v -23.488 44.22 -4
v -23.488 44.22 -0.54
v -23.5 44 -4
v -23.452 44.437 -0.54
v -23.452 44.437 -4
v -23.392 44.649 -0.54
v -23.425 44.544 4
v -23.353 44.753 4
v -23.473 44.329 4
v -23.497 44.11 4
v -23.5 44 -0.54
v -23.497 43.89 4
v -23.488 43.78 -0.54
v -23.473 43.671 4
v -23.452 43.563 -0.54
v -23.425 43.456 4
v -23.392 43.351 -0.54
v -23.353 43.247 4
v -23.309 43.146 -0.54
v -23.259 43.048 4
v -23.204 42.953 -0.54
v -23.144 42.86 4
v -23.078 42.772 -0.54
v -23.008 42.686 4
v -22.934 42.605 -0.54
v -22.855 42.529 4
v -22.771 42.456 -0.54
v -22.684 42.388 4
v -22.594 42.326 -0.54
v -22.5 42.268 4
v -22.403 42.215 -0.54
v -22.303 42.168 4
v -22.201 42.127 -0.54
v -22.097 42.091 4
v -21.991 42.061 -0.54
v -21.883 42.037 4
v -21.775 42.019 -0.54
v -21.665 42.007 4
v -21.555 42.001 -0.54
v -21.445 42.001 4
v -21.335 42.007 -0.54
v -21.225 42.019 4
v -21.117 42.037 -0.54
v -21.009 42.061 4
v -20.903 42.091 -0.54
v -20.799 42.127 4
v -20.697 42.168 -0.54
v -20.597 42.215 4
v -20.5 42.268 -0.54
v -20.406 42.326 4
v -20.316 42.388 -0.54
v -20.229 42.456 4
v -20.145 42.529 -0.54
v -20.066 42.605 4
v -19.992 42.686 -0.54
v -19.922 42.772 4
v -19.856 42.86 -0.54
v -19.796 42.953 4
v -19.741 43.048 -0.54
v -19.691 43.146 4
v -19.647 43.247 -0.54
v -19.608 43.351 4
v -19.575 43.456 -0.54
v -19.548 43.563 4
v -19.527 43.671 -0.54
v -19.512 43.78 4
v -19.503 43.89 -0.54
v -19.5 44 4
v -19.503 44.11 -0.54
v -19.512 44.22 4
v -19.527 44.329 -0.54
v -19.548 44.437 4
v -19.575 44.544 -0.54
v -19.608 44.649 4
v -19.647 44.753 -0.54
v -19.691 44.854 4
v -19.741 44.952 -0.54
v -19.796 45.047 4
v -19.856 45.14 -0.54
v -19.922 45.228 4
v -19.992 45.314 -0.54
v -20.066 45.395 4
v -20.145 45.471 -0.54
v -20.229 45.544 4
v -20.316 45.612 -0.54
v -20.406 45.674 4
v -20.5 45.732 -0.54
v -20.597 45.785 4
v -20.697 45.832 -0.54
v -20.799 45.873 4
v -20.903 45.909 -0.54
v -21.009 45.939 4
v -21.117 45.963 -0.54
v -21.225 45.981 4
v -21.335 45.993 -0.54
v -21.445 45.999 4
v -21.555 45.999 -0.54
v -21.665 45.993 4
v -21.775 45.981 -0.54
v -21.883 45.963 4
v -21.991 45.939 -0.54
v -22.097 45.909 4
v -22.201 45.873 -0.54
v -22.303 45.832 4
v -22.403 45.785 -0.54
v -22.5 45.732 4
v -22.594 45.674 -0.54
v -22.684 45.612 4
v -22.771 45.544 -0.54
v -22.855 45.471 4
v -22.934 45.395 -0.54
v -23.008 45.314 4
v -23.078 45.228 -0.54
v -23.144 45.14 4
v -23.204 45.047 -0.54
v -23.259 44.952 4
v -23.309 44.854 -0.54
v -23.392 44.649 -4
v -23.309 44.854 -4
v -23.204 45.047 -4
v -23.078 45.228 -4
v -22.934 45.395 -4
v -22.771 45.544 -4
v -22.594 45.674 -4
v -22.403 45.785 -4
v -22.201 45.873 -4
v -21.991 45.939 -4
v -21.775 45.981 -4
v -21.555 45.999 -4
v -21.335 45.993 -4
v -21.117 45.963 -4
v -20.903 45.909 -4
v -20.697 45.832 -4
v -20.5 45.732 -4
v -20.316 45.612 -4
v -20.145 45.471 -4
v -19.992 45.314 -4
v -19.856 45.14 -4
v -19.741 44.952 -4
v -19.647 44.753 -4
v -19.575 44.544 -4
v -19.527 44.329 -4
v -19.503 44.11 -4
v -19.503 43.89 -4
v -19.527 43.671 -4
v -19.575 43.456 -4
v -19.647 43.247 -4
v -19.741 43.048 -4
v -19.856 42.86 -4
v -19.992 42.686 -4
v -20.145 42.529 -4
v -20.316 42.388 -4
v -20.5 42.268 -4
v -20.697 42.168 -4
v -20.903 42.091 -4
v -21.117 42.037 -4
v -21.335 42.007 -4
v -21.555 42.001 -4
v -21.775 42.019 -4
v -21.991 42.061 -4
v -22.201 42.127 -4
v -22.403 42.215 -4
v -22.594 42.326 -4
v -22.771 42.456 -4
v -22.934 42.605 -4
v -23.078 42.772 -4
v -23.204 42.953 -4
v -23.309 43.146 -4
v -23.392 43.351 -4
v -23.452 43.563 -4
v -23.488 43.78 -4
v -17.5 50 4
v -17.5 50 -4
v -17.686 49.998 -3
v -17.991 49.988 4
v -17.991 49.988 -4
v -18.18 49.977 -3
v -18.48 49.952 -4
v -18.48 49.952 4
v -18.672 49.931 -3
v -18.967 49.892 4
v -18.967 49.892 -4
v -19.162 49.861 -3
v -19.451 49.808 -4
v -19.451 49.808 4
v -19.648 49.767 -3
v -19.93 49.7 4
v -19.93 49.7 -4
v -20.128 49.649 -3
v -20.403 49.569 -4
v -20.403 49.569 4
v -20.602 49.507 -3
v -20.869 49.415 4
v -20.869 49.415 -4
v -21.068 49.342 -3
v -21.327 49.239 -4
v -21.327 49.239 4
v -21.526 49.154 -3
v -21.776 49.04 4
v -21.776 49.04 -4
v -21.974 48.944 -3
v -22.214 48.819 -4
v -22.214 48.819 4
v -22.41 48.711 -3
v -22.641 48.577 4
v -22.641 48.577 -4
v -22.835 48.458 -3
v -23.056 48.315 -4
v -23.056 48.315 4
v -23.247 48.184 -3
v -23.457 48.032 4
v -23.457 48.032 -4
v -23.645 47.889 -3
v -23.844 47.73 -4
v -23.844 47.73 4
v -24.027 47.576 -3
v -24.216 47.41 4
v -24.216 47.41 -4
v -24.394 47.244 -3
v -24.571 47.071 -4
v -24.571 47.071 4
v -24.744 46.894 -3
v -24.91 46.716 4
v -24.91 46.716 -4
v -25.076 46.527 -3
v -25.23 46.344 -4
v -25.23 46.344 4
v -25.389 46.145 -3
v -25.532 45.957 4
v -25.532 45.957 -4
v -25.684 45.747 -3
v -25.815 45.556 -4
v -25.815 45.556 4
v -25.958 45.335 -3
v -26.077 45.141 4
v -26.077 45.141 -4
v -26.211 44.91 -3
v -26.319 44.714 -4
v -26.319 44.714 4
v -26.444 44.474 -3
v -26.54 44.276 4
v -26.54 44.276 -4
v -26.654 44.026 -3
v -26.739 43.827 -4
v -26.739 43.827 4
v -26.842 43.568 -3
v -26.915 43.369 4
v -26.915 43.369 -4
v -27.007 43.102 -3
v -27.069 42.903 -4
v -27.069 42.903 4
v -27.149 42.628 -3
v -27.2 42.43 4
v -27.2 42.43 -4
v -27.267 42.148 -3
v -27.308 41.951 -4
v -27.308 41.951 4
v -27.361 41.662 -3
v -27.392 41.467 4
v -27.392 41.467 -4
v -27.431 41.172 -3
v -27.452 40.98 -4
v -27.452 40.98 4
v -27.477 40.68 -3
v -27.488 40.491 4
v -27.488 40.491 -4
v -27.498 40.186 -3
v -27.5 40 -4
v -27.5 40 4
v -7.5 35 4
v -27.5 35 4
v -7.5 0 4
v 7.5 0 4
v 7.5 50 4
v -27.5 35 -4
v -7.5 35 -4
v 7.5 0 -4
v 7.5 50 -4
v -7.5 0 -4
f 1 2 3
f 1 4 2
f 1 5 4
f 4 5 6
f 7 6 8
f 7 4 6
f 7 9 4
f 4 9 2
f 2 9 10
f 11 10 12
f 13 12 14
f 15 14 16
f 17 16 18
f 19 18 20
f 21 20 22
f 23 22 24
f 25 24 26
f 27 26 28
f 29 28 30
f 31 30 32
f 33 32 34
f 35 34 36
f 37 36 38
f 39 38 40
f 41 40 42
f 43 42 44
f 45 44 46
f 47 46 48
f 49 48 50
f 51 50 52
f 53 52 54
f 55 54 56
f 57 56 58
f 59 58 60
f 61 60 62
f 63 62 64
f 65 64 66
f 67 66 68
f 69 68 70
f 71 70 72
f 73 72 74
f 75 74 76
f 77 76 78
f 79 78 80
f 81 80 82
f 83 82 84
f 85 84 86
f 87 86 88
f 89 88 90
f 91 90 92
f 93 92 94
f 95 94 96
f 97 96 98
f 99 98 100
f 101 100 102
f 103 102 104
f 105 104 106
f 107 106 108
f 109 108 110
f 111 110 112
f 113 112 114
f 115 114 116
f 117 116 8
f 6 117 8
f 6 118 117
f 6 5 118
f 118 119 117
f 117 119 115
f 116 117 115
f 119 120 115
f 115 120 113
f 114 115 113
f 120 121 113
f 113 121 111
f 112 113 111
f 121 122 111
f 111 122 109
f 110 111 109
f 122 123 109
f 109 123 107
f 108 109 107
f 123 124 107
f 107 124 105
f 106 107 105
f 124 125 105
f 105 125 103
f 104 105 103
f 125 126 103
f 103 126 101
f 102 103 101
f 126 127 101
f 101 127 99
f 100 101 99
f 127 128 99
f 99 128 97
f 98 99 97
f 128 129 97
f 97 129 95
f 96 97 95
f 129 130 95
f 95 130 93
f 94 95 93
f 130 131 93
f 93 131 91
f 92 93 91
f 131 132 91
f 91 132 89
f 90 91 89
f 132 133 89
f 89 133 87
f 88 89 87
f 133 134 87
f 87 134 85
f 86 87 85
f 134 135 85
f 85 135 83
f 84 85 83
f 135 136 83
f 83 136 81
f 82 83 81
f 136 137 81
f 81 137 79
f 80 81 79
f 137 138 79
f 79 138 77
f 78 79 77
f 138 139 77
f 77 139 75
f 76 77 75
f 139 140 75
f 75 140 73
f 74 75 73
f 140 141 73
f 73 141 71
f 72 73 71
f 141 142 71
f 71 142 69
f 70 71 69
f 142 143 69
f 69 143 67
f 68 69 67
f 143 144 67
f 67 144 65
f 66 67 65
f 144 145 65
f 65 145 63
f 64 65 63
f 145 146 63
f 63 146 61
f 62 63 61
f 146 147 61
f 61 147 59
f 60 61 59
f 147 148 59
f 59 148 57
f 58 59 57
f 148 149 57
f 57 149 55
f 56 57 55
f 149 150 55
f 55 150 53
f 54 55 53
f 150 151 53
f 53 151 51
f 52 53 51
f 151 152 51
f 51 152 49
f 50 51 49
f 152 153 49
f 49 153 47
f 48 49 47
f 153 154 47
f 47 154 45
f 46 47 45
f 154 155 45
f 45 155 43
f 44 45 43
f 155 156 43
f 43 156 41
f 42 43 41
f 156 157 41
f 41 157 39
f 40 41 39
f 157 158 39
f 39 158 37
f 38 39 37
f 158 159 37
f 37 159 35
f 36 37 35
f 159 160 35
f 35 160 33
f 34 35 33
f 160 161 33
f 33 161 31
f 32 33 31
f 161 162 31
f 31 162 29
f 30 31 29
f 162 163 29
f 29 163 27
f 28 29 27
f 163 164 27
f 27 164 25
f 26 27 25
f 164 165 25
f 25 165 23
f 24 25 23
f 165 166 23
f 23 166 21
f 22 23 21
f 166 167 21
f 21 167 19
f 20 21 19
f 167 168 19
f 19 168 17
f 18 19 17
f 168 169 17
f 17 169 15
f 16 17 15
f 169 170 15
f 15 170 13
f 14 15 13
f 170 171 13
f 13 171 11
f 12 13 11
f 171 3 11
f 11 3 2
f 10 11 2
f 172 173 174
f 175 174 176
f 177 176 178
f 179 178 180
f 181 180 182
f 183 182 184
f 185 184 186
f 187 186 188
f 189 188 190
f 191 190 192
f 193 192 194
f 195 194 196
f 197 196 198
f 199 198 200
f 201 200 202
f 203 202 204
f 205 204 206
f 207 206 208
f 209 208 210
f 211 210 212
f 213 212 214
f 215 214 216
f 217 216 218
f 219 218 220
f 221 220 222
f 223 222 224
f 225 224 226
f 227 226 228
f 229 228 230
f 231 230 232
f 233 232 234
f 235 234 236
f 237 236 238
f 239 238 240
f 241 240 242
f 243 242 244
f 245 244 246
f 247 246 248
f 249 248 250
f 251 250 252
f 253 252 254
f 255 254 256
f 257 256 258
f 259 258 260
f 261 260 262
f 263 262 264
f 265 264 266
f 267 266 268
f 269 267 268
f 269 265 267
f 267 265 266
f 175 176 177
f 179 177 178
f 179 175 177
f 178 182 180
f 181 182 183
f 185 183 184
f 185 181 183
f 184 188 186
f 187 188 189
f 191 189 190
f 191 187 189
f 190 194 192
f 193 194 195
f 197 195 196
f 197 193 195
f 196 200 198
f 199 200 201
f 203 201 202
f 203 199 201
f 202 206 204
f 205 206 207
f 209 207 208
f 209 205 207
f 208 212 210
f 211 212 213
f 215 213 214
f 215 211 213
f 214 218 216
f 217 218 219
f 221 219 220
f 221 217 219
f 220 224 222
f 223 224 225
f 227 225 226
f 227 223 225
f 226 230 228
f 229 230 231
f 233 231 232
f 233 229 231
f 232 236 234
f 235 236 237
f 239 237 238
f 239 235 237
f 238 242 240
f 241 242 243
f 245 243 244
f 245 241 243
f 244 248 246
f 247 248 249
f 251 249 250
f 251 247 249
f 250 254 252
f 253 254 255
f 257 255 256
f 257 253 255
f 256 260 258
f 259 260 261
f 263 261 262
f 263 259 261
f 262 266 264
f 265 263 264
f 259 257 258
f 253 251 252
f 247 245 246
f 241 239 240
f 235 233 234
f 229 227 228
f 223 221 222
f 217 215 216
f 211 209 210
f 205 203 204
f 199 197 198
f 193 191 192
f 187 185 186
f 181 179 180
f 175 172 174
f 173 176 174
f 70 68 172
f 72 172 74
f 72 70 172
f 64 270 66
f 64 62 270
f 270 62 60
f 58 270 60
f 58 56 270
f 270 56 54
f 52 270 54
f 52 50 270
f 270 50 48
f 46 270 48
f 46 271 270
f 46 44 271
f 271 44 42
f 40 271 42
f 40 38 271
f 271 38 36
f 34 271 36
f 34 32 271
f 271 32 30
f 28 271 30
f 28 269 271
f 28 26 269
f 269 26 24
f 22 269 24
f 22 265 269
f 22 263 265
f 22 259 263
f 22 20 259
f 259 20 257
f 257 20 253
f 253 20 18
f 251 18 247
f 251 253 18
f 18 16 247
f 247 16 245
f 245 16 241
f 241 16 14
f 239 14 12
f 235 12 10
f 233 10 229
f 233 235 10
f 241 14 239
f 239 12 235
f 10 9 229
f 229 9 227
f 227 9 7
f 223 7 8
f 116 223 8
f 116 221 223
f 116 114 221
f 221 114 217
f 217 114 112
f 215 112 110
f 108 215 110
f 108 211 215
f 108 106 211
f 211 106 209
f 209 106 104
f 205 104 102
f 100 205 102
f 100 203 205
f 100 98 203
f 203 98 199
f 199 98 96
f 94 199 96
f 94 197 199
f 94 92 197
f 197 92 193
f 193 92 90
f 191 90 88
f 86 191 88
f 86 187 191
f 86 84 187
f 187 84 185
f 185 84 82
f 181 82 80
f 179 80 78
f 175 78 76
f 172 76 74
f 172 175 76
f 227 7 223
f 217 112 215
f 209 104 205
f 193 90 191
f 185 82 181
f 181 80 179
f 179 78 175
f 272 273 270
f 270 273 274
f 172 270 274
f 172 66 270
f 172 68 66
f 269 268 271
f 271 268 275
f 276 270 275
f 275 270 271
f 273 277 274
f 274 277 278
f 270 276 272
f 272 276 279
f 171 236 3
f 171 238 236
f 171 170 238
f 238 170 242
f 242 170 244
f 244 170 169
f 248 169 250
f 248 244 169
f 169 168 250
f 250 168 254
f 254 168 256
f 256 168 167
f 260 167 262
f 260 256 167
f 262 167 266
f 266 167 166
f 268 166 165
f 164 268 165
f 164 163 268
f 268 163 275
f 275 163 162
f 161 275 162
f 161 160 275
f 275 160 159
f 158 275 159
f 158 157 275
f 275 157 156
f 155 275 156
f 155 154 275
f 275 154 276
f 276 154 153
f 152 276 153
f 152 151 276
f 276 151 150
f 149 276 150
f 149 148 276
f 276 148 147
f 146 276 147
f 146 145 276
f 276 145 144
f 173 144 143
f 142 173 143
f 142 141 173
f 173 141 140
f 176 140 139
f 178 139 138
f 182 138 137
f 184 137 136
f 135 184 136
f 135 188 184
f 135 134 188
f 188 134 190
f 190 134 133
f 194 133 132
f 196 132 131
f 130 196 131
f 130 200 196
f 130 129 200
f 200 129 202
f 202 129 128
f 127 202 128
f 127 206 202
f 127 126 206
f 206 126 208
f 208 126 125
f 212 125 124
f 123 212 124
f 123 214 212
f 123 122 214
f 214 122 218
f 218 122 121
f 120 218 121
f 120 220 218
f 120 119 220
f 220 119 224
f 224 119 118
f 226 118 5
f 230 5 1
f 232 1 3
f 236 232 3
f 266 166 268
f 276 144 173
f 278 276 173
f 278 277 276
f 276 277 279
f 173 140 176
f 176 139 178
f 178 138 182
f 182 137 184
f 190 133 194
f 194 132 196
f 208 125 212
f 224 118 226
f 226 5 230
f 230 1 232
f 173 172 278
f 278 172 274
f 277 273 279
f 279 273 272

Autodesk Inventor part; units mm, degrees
ref_plane "YZ Plane" through (0, 0, 0) normal (1, 0, 0) x (0, 1, 0)
ref_plane "XZ Plane" through (0, 0, 0) normal (0, 1, 0) x (-1, 0, 0)
ref_plane "XY Plane" through (0, 0, 0) normal (0, 0, 1) x (1, 0, 0)
sketch "Sketch2" plane through (0, 0, 0) normal (0, 1, 0) x (-1, 0, 0)
  line L0 (-7.5, -4) -> (7.5, -4)
  line L1 (7.5, -4) -> (7.5, 4)
  line L2 (7.5, 4) -> (-7.5, 4)
  line L3 (-7.5, 4) -> (-7.5, -4)
  line L4 (-7.5, -4) -> (7.5, 4) construction
  line L5 (7.5, -4) -> (-7.5, 4) construction
  point P0 (0, 0)
  dimension "d5" = 15
  dimension "d6" = 8
extrude "Extrusion2" add sketch "Sketch2" along normal blind 50
sketch "Sketch3" plane through (-7.5, 0, -4) normal (-1, 0, 0) x (0, 0, 1)
  line L0 (8, 0) -> (8, 50) projected
  line L1 (0, 50) -> (8, 50)
  line L2 (8, 50) -> (8, 35)
  line L3 (8, 35) -> (0, 35)
  line L4 (0, 35) -> (0, 50)
  point P0 (4, 0)
  dimension "d9" = 15
extrude "Extrusion3" add sketch "Sketch3" along normal blind 20
fillet "Fillet1" radius 10 1 edges at (-27.5, 50, 0)
sketch "Sketch5" plane through (-7.5, 0, 4) normal (0, 0, 1) x (1, 0, 0)
  line L0 (-20, 35) -> (-20, 40) projected
  line L1 (15, 50) -> (-10, 50) projected
  point P0 (7.5, 0)
  point P1 (-14, 44)
  dimension "d13" = 6
  dimension "d14" = 6
hole "Hole1" at (-21.5, 44, 4) direction (0, 0, -1) diameter 4 end through all
properties part number "lever_support" material "PC/ABS Plastic"
